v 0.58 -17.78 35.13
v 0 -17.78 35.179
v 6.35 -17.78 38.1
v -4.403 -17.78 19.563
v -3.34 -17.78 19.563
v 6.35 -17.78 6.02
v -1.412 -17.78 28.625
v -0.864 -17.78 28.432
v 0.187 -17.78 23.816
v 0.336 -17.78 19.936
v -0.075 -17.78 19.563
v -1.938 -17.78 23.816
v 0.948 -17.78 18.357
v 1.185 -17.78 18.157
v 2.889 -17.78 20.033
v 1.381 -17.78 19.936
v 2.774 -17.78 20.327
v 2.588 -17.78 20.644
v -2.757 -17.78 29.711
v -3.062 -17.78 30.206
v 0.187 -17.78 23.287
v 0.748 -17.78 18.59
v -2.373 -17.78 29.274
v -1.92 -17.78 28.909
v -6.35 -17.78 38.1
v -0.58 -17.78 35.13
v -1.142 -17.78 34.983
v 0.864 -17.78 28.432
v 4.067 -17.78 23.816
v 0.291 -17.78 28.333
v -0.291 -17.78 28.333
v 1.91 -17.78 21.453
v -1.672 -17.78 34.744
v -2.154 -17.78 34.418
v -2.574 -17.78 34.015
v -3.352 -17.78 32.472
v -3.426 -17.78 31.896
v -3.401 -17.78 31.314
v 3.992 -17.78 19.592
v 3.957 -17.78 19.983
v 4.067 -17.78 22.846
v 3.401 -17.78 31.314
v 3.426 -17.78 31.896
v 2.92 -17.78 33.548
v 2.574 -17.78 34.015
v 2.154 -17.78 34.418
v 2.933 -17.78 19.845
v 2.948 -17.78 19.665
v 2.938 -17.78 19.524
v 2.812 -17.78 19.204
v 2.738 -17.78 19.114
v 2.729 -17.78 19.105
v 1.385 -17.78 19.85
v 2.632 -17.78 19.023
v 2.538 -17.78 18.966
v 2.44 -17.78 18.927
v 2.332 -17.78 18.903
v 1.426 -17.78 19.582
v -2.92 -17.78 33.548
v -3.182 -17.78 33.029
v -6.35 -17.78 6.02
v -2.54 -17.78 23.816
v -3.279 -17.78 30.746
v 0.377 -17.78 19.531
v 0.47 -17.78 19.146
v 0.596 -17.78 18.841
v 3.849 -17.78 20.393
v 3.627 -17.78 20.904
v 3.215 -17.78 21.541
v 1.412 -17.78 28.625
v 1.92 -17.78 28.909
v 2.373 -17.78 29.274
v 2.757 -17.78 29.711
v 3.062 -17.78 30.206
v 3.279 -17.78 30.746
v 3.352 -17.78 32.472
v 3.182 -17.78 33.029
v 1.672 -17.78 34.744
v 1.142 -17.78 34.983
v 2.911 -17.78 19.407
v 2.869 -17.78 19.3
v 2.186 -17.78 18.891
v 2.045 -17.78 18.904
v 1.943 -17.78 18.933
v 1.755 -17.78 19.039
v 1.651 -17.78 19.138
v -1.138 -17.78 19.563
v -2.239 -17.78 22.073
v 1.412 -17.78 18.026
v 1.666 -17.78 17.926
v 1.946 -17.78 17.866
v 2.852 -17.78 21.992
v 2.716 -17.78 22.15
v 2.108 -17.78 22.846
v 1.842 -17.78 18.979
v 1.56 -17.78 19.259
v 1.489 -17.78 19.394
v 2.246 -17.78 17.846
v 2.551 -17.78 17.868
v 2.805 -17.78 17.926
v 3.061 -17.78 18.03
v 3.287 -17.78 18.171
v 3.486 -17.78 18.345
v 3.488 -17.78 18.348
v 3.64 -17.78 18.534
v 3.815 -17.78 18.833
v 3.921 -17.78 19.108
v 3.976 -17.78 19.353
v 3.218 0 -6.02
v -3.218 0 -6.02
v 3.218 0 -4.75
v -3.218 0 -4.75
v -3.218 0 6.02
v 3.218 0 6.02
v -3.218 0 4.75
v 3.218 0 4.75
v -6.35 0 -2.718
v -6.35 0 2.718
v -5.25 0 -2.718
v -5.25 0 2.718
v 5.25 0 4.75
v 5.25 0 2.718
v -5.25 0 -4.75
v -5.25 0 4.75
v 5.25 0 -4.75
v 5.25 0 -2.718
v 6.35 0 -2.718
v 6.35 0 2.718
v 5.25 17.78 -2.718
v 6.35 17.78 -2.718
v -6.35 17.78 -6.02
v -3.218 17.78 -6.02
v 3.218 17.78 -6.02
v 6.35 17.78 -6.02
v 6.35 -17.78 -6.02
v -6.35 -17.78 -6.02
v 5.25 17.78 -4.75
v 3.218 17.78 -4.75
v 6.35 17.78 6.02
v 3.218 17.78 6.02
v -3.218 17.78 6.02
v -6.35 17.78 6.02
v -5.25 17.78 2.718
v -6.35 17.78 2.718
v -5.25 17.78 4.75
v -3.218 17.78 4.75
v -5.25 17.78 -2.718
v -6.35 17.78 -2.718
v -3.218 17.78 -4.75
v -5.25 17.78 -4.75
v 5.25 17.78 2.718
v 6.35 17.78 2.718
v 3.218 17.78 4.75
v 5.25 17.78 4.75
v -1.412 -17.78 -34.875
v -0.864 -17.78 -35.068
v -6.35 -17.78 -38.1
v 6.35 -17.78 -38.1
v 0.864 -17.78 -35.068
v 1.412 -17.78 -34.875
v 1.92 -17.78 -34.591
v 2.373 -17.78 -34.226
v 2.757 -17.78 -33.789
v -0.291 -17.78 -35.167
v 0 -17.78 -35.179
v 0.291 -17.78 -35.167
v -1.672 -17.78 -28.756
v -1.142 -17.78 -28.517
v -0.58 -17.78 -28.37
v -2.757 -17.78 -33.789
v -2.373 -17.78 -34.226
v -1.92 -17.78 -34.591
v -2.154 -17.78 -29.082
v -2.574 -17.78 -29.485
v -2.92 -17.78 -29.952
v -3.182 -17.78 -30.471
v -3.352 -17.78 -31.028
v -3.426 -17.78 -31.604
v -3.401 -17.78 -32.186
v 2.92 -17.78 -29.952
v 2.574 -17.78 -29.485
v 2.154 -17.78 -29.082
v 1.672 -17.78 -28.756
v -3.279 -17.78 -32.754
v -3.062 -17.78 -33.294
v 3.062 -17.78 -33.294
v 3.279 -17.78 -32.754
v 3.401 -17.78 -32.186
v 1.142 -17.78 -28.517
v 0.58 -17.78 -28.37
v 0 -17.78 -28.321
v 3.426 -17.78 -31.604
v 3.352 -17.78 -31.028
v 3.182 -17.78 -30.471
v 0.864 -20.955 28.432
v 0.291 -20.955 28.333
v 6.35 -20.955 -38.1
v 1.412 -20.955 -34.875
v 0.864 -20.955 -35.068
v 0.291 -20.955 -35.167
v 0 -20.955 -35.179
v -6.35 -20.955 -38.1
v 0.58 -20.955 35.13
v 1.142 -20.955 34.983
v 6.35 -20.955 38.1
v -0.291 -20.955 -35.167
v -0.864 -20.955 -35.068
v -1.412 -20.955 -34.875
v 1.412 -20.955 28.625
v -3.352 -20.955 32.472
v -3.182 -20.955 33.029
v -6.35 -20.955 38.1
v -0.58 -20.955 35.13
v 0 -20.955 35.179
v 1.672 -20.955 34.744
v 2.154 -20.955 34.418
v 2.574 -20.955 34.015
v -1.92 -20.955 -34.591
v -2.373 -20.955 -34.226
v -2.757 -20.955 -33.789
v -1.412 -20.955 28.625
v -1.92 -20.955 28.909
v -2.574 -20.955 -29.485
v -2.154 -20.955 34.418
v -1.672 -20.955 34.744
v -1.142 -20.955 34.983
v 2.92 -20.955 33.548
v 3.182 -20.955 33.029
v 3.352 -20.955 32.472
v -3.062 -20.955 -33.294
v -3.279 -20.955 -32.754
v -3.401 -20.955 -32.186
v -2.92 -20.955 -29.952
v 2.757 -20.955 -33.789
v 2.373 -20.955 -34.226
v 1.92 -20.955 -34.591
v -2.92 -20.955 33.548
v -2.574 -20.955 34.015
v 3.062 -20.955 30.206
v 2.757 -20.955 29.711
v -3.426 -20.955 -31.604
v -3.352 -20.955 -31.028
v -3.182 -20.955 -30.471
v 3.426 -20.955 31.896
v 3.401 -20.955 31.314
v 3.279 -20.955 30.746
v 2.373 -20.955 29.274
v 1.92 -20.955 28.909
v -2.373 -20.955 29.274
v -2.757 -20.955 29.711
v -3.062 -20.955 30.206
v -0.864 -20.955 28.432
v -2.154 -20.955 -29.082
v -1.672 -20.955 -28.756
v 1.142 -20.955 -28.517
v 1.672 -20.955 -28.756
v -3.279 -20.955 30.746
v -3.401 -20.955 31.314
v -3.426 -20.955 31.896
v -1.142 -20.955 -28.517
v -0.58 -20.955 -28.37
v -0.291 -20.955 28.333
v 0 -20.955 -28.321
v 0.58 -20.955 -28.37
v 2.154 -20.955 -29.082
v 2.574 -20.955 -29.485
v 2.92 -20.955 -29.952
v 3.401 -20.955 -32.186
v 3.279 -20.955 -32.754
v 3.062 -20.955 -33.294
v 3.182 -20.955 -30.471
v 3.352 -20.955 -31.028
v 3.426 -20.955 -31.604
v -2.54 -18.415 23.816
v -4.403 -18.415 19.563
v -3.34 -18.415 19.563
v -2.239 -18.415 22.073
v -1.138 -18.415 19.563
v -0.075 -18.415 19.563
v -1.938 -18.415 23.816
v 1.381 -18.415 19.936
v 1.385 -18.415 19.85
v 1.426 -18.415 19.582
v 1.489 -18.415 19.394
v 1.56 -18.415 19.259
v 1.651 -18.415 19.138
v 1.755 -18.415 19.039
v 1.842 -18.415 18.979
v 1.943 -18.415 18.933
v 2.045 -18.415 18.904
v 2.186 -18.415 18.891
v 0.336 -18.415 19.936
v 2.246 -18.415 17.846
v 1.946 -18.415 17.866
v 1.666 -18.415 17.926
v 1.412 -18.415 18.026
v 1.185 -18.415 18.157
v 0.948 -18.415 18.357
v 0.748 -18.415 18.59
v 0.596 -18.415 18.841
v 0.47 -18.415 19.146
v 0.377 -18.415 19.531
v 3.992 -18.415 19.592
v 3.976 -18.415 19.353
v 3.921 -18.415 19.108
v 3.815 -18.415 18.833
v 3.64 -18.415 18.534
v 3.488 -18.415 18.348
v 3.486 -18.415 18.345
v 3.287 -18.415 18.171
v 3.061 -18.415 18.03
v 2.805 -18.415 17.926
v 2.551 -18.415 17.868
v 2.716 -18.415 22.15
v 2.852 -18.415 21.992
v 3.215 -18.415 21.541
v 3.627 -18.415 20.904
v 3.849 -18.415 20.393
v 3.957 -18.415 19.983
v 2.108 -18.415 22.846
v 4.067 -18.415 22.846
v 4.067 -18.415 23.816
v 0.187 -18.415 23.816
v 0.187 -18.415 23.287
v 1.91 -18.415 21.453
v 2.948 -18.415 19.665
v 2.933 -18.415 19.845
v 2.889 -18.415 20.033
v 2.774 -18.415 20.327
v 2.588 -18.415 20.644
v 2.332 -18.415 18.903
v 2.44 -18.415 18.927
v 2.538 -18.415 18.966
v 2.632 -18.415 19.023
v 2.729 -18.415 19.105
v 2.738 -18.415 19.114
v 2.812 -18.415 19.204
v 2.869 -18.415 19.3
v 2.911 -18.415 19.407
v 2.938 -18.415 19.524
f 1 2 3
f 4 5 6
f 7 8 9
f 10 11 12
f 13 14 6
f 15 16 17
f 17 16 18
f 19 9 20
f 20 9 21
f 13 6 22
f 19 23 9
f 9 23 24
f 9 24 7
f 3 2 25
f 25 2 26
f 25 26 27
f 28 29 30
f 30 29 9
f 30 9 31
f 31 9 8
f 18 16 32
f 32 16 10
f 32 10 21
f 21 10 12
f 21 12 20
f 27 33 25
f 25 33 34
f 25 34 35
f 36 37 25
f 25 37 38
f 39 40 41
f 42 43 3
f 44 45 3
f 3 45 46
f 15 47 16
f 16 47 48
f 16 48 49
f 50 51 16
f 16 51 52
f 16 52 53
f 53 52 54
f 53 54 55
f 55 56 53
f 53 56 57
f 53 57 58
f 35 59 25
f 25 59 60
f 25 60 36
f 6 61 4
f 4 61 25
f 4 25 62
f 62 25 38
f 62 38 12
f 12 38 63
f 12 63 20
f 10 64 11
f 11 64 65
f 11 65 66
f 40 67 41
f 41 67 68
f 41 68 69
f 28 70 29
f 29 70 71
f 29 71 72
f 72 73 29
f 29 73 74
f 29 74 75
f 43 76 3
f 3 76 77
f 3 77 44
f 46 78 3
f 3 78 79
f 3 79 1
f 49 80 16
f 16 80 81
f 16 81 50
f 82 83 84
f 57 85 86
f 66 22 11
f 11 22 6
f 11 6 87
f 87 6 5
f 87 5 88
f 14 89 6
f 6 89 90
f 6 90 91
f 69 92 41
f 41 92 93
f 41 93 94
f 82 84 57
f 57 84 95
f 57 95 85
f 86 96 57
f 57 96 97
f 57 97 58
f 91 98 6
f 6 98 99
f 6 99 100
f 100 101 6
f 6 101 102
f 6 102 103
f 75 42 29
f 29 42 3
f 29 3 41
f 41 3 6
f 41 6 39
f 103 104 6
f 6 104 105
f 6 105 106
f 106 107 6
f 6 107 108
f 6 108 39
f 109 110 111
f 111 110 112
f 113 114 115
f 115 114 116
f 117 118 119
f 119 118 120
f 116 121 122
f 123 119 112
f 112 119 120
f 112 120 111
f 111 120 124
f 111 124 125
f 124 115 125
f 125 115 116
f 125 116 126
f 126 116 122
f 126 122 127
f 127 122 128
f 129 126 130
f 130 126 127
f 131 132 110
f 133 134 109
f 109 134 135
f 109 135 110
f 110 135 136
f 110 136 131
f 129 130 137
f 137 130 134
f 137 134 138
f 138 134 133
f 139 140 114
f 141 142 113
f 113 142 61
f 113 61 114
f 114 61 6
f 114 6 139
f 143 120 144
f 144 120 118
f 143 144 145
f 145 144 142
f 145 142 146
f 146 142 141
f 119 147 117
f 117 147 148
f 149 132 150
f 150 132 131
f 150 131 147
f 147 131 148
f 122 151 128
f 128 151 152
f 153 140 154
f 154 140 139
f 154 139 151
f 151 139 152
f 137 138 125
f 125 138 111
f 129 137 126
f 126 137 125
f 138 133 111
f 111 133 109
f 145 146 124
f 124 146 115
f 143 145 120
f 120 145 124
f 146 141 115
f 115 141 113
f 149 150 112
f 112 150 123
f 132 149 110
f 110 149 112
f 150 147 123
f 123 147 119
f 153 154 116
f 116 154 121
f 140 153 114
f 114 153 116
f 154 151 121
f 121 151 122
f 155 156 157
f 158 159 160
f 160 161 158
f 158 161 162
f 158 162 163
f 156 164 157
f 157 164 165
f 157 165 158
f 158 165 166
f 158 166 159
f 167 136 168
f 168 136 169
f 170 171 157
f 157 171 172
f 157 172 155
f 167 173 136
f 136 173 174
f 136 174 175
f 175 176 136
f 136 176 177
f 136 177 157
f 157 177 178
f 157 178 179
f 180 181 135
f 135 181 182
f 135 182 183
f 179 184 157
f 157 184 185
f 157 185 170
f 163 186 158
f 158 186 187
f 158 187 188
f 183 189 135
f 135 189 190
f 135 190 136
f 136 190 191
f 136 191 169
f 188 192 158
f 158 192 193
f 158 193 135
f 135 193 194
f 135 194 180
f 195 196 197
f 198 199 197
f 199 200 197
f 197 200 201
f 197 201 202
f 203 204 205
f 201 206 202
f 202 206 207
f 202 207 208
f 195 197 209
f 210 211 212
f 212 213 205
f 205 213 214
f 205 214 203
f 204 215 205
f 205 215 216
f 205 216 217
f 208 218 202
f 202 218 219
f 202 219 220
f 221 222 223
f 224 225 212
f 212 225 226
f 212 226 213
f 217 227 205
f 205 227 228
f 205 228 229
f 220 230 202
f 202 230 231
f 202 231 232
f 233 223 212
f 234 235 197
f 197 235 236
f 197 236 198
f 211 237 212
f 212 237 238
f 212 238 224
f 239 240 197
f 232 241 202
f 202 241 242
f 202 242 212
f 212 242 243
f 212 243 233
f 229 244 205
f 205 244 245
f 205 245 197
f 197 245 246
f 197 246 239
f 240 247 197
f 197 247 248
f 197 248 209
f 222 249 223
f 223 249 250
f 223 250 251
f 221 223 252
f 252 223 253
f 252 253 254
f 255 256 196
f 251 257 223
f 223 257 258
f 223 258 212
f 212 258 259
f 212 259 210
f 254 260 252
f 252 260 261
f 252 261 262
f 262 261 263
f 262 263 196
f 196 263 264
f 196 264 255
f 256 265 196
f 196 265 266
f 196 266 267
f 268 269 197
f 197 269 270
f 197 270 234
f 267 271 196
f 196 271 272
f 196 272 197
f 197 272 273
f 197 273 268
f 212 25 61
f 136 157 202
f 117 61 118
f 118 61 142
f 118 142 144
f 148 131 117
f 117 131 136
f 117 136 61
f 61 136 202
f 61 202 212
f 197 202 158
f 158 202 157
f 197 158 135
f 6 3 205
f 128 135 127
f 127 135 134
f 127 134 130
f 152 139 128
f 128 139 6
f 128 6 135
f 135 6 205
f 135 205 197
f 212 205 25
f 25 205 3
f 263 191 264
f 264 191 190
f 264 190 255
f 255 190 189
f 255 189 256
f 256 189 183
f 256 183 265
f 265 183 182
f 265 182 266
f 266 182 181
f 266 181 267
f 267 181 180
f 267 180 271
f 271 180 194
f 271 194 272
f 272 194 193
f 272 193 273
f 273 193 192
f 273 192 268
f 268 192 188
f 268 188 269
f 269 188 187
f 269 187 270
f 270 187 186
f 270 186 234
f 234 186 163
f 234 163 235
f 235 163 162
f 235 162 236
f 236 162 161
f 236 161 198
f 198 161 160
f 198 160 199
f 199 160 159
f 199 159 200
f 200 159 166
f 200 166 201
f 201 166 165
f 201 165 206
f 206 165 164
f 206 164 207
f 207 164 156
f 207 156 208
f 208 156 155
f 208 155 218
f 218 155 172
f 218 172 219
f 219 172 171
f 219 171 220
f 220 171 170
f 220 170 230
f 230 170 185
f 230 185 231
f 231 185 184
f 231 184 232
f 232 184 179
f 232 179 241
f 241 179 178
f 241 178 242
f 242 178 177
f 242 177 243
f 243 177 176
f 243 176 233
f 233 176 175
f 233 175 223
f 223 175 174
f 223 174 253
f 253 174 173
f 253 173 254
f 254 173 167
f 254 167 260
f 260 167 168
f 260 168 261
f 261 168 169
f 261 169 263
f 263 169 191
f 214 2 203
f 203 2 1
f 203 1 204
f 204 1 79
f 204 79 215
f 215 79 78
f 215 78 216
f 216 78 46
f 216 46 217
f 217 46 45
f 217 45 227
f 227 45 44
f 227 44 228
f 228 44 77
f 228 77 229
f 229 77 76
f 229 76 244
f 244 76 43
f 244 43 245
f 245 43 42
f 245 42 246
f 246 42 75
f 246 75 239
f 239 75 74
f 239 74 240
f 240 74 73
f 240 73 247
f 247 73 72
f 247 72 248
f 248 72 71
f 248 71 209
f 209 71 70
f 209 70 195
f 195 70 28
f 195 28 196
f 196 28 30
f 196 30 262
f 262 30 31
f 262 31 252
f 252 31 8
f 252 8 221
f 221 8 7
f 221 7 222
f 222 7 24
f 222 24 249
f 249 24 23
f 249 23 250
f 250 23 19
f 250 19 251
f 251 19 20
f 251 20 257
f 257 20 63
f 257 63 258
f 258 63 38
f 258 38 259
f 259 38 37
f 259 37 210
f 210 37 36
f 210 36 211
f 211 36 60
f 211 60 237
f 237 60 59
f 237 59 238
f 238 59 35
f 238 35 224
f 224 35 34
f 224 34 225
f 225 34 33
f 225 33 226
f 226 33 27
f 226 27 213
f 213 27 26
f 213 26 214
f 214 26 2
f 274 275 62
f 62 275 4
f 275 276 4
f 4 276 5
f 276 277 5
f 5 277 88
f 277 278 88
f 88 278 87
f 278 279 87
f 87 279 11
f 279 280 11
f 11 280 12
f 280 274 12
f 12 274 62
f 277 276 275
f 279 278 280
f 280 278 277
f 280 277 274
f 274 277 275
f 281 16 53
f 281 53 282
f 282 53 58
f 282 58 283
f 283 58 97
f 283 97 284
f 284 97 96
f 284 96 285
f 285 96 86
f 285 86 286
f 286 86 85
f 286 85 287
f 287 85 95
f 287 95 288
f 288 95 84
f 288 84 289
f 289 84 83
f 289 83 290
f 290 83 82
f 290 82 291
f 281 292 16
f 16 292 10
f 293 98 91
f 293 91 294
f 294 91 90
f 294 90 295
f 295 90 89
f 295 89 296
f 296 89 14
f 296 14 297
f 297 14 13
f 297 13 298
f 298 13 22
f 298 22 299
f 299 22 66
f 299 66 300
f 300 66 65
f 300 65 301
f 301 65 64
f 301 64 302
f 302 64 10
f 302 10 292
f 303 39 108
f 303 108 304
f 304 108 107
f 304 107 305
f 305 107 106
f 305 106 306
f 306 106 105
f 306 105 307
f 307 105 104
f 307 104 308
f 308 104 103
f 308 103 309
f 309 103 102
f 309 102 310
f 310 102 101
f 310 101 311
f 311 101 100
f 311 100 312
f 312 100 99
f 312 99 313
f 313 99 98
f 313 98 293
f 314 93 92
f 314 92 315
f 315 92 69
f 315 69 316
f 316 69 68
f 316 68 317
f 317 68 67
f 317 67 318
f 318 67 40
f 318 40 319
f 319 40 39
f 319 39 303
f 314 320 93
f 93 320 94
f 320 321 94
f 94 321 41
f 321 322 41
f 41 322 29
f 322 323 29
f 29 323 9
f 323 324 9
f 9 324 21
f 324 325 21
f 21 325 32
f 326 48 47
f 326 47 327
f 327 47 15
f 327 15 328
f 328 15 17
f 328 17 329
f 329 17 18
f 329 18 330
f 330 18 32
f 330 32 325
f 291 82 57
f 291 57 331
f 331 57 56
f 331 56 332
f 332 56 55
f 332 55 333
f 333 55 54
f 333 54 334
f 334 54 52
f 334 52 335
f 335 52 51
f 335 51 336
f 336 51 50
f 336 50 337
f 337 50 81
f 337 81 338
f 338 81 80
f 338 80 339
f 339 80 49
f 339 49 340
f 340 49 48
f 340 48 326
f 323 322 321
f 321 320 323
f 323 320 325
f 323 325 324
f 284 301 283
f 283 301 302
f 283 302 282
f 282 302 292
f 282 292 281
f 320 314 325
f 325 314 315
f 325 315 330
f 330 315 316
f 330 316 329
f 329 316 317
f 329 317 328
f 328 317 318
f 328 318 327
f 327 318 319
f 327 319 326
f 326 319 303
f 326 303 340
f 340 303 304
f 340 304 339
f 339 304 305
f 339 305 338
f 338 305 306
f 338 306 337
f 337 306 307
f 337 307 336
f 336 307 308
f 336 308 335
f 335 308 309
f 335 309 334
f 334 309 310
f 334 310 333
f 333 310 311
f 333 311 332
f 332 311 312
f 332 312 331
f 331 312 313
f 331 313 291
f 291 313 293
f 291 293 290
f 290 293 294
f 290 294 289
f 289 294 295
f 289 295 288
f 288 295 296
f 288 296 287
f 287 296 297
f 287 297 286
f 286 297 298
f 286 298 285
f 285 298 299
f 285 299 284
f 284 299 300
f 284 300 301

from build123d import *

# Parameters (mm, degrees)
BOSS_EXTRUDE1_DEPTH   = 17.78
BOSS_EXTRUDE1_2_DEPTH = 17.78
BOSS_EXTRUDE1_3_DEPTH = 17.78
BOSS_EXTRUDE1_4_DEPTH = 17.78
SKETCH2_W             = 13.04
SKETCH2_H             = 12.04
BOSS_EXTRUDE2_DEPTH   = 17.78
SKETCH3_W             = 12.7
SKETCH3_H             = 76.2
SKETCH3_R             = 3.429
BOSS_EXTRUDE3_DEPTH   = 3.175
SKETCH4_OUTSIDE_W     = 32.334
SKETCH4_OUTSIDE_H     = 95.494
SKETCH4_OUTSIDE_W_2   = 12.7
SKETCH4_OUTSIDE_H_2   = 76.2
CUT_EXTRUDE2_DEPTH    = 55.722213268
CUT_EXTRUDE3_DEPTH    = 0.635


with BuildPart() as part:
    # Sketch1 → Boss-Extrude1 (new body)
    with BuildSketch(Plane(origin=(0, 0, 0), x_dir=(1, 0, 0), z_dir=(0, 1, 0))):
        Polygon((-5.25, 4.75), (-5.25, 2.718), (-6.52, 2.718), (-6.52, 6.02), (-3.218, 6.02), (-3.218, 4.75), align=None)
    extrude(amount=BOSS_EXTRUDE1_DEPTH)



with BuildPart() as body_2:
    # Sketch1 → Boss-Extrude1 2 (new body)
    with BuildSketch(Plane(origin=(0, 0, 0), x_dir=(1, 0, 0), z_dir=(0, 1, 0))):
        Polygon((6.52, 2.718), (6.52, 6.02), (3.218, 6.02), (3.218, 4.75), (5.25, 4.75), (5.25, 2.718), align=None)
    extrude(amount=BOSS_EXTRUDE1_2_DEPTH)


with BuildPart() as body_3:
    # Sketch1 → Boss-Extrude1 3 (new body)
    with BuildSketch(Plane(origin=(0, 0, 0), x_dir=(1, 0, 0), z_dir=(0, 1, 0))):
        Polygon((5.25, -2.718), (6.52, -2.718), (6.52, -6.02), (3.218, -6.02), (3.218, -4.75), (5.25, -4.75), align=None)
    extrude(amount=BOSS_EXTRUDE1_3_DEPTH)


with BuildPart() as body_4:
    # Sketch1 → Boss-Extrude1 4 (new body)
    with BuildSketch(Plane(origin=(0, 0, 0), x_dir=(1, 0, 0), z_dir=(0, 1, 0))):
        Polygon((-5.25, -2.718), (-6.52, -2.718), (-6.52, -6.02), (-3.218, -6.02), (-3.218, -4.75), (-5.25, -4.75), align=None)
    extrude(amount=BOSS_EXTRUDE1_4_DEPTH)


with BuildPart() as part_1:
    add(part.part)

    add(body_2.part)  # Boss-Extrude2 merges body 2

    add(body_3.part)  # Boss-Extrude2 merges body 3

    add(body_4.part)  # Boss-Extrude2 merges body 4
    # Sketch2 → Boss-Extrude2 (add)
    with BuildSketch(Plane(origin=(0, 0, 0), x_dir=(-1, 0, 0), z_dir=(0, -1, 0))):
        Rectangle(SKETCH2_W, SKETCH2_H)
    extrude(amount=BOSS_EXTRUDE2_DEPTH)

    # Sketch3 → Boss-Extrude3 (add)
    with BuildSketch(Plane(origin=(0, -17.78, 0), x_dir=(-1, 0, 0), z_dir=(0, -1, 0))):
        Rectangle(SKETCH3_W, SKETCH3_H)
        with Locations(Location((0, 31.75, 0), (0, 0, 90))):
            Circle(SKETCH3_R, mode=Mode.SUBTRACT)
        with Locations(Location((0, -31.75, 0), (0, 0, 270))):
            Circle(SKETCH3_R, mode=Mode.SUBTRACT)
    extrude(amount=BOSS_EXTRUDE3_DEPTH)

    # Sketch4 outside → Cut-Extrude2 (cut, through all)
    with BuildSketch(Plane.XZ.offset(20.955)):
        Rectangle(SKETCH4_OUTSIDE_W, SKETCH4_OUTSIDE_H)
        Rectangle(SKETCH4_OUTSIDE_W_2, SKETCH4_OUTSIDE_H_2, mode=Mode.SUBTRACT)
    extrude(amount=-CUT_EXTRUDE2_DEPTH, mode=Mode.SUBTRACT)

    # Sketch5 → Cut-Extrude3 (cut)
    with BuildSketch(Plane(origin=(0, -17.78, 0), x_dir=(1, 0, 0), z_dir=(0, 1, 0))):
        Polygon((-4.402938034, -19.56265828), (-3.33951656, -19.56265828), (-2.238782051, -22.073125862), (-1.138047543, -19.56265828), (-0.074626068, -19.56265828), (-1.937945713, -23.816344178), (-2.539618389, -23.816344178), align=None)
        with BuildLine():
            Line((1.380582265, -19.935788622), (0.335817308, -19.935788622))
            add(Edge.make_bspline(
                [(0.335817308, -19.935788622), (0.340329487, -19.85675768), (0.349146015, -19.702335965), (0.384215936, -19.478033479), (0.431208425, -19.266092295), (0.493926141, -19.067253807), (0.572735055, -18.881590265), (0.665607209, -18.708468733), (0.774915278, -18.5488007), (0.898332826, -18.403356174), (1.033764562, -18.272876548), (1.17839879, -18.157185114), (1.334447887, -18.061719455), (1.499060707, -17.983160056), (1.672209219, -17.920394746), (1.855531682, -17.878431057), (2.04744079, -17.850012836), (2.178818114, -17.847526128), (2.245778245, -17.846258707)],
                knots=[0, 0, 0, 0, 1.199038563, 2.342849363, 3.436047546, 4.486744587, 5.497670872, 6.488682221, 7.459191391, 8.424610317, 9.374430501, 10.305433194, 11.225809216, 12.140057399, 13.06607119, 14.010487599, 14.985989317, 16, 16, 16, 16], degree=3))
            add(Edge.make_bspline(
                [(2.245778245, -17.846258707), (2.327970856, -17.848823334), (2.488430093, -17.853830085), (2.721590093, -17.896539334), (2.93933604, -17.967977154), (3.141509653, -18.067794628), (3.326389793, -18.194602266), (3.493945801, -18.34579962), (3.639110517, -18.52455889), (3.762804328, -18.723442196), (3.865579101, -18.934031626), (3.937599381, -19.151789829), (3.984937536, -19.370938387), (3.989986444, -19.518501933), (3.992494658, -19.591809088)],
                knots=[0, 0, 0, 0, 1.075374347, 2.099382735, 3.09057751, 4.06680945, 5.040638231, 6.016817125, 7.011024321, 8.044445721, 9.0776792, 10.070479129, 11.0414456, 12, 12, 12, 12], degree=3))
            add(Edge.make_bspline(
                [(3.992494658, -19.591809088), (3.991518092, -19.636150437), (3.989552505, -19.725398619), (3.97588552, -19.860453023), (3.955382341, -19.998021723), (3.924468545, -20.137986768), (3.885916506, -20.280387391), (3.839147311, -20.425649748), (3.783076101, -20.572950255), (3.718638592, -20.723946755), (3.641764481, -20.879129473), (3.552255264, -21.04082466), (3.447735164, -21.208888878), (3.329466651, -21.384271073), (3.196875325, -21.566694641), (3.049313917, -21.755610064), (2.888481989, -21.95168302), (2.774335046, -22.082746787), (2.715689269, -22.150083995)],
                knots=[0, 0, 0, 0, 0.728284026, 1.46585585, 2.227944881, 3.01186502, 3.81876927, 4.650621989, 5.517437689, 6.406905708, 7.346299482, 8.360816762, 9.441613733, 10.596154504, 11.834900912, 13.145207542, 14.533280747, 16, 16, 16, 16], degree=3))
            Line((2.715689269, -22.150083995), (2.108186432, -22.846205289))
            Line((2.108186432, -22.846205289), (4.067120726, -22.846205289))
            Line((4.067120726, -22.846205289), (4.067120726, -23.816344178))
            Line((4.067120726, -23.816344178), (0.186565171, -23.816344178))
            Line((0.186565171, -23.816344178), (0.186565171, -23.286965505))
            Line((0.186565171, -23.286965505), (1.909960938, -21.452796668))
            add(Edge.make_bspline(
                [(1.909960938, -21.452796668), (1.959857674, -21.399293394), (2.056492855, -21.295673418), (2.193994758, -21.143496459), (2.318421835, -20.999084157), (2.427193988, -20.860898814), (2.526019439, -20.733422598), (2.610491571, -20.612813217), (2.681383236, -20.500161025), (2.758346193, -20.364322155), (2.831435702, -20.202310131), (2.898499751, -20.015665636), (2.93937993, -19.837276484), (2.945022687, -19.721034278), (2.947729701, -19.665269124)],
                knots=[0, 0, 0, 0, 1.246127091, 2.413378631, 3.493388633, 4.492180848, 5.408488754, 6.240484944, 6.999099869, 7.674939598, 8.898438119, 10.020720584, 11.050475521, 12, 12, 12, 12], degree=3))
            add(Edge.make_bspline(
                [(2.947729701, -19.665269124), (2.945705732, -19.611320641), (2.941783968, -19.506786804), (2.898686962, -19.358087978), (2.831919585, -19.223456371), (2.737834921, -19.106914927), (2.623868926, -19.011145094), (2.492170513, -18.939914183), (2.343813413, -18.898814274), (2.239812259, -18.893670033), (2.186310597, -18.891023665)],
                knots=[0, 0, 0, 0, 1.062038974, 2.057870785, 3.028805853, 4.01125022, 4.991535629, 5.949134679, 6.94496649, 8, 8, 8, 8], degree=3))
            add(Edge.make_bspline(
                [(2.186310597, -18.891023665), (2.158670957, -18.892001265), (2.104257887, -18.893925828), (2.024274927, -18.906737125), (1.948165395, -18.929315698), (1.875082148, -18.959567808), (1.80580515, -18.999667197), (1.740509141, -19.049096083), (1.678506143, -19.106598364), (1.620080529, -19.17199424), (1.566905592, -19.244976057), (1.519675807, -19.324877276), (1.480624638, -19.411648298), (1.44624257, -19.504143614), (1.419725473, -19.603356699), (1.400417737, -19.708693775), (1.385739355, -19.819983471), (1.382332567, -19.896484672), (1.380582265, -19.935788622)],
                knots=[0, 0, 0, 0, 0.903469896, 1.778625579, 2.63899355, 3.493148037, 4.358286772, 5.247621495, 6.164656832, 7.118446693, 8.109501108, 9.111810964, 10.146451449, 11.215617525, 12.33435995, 13.498009769, 14.714554818, 16, 16, 16, 16], degree=3))
        make_face()
    extrude(amount=-CUT_EXTRUDE3_DEPTH, mode=Mode.SUBTRACT)


solid = part_1.part
